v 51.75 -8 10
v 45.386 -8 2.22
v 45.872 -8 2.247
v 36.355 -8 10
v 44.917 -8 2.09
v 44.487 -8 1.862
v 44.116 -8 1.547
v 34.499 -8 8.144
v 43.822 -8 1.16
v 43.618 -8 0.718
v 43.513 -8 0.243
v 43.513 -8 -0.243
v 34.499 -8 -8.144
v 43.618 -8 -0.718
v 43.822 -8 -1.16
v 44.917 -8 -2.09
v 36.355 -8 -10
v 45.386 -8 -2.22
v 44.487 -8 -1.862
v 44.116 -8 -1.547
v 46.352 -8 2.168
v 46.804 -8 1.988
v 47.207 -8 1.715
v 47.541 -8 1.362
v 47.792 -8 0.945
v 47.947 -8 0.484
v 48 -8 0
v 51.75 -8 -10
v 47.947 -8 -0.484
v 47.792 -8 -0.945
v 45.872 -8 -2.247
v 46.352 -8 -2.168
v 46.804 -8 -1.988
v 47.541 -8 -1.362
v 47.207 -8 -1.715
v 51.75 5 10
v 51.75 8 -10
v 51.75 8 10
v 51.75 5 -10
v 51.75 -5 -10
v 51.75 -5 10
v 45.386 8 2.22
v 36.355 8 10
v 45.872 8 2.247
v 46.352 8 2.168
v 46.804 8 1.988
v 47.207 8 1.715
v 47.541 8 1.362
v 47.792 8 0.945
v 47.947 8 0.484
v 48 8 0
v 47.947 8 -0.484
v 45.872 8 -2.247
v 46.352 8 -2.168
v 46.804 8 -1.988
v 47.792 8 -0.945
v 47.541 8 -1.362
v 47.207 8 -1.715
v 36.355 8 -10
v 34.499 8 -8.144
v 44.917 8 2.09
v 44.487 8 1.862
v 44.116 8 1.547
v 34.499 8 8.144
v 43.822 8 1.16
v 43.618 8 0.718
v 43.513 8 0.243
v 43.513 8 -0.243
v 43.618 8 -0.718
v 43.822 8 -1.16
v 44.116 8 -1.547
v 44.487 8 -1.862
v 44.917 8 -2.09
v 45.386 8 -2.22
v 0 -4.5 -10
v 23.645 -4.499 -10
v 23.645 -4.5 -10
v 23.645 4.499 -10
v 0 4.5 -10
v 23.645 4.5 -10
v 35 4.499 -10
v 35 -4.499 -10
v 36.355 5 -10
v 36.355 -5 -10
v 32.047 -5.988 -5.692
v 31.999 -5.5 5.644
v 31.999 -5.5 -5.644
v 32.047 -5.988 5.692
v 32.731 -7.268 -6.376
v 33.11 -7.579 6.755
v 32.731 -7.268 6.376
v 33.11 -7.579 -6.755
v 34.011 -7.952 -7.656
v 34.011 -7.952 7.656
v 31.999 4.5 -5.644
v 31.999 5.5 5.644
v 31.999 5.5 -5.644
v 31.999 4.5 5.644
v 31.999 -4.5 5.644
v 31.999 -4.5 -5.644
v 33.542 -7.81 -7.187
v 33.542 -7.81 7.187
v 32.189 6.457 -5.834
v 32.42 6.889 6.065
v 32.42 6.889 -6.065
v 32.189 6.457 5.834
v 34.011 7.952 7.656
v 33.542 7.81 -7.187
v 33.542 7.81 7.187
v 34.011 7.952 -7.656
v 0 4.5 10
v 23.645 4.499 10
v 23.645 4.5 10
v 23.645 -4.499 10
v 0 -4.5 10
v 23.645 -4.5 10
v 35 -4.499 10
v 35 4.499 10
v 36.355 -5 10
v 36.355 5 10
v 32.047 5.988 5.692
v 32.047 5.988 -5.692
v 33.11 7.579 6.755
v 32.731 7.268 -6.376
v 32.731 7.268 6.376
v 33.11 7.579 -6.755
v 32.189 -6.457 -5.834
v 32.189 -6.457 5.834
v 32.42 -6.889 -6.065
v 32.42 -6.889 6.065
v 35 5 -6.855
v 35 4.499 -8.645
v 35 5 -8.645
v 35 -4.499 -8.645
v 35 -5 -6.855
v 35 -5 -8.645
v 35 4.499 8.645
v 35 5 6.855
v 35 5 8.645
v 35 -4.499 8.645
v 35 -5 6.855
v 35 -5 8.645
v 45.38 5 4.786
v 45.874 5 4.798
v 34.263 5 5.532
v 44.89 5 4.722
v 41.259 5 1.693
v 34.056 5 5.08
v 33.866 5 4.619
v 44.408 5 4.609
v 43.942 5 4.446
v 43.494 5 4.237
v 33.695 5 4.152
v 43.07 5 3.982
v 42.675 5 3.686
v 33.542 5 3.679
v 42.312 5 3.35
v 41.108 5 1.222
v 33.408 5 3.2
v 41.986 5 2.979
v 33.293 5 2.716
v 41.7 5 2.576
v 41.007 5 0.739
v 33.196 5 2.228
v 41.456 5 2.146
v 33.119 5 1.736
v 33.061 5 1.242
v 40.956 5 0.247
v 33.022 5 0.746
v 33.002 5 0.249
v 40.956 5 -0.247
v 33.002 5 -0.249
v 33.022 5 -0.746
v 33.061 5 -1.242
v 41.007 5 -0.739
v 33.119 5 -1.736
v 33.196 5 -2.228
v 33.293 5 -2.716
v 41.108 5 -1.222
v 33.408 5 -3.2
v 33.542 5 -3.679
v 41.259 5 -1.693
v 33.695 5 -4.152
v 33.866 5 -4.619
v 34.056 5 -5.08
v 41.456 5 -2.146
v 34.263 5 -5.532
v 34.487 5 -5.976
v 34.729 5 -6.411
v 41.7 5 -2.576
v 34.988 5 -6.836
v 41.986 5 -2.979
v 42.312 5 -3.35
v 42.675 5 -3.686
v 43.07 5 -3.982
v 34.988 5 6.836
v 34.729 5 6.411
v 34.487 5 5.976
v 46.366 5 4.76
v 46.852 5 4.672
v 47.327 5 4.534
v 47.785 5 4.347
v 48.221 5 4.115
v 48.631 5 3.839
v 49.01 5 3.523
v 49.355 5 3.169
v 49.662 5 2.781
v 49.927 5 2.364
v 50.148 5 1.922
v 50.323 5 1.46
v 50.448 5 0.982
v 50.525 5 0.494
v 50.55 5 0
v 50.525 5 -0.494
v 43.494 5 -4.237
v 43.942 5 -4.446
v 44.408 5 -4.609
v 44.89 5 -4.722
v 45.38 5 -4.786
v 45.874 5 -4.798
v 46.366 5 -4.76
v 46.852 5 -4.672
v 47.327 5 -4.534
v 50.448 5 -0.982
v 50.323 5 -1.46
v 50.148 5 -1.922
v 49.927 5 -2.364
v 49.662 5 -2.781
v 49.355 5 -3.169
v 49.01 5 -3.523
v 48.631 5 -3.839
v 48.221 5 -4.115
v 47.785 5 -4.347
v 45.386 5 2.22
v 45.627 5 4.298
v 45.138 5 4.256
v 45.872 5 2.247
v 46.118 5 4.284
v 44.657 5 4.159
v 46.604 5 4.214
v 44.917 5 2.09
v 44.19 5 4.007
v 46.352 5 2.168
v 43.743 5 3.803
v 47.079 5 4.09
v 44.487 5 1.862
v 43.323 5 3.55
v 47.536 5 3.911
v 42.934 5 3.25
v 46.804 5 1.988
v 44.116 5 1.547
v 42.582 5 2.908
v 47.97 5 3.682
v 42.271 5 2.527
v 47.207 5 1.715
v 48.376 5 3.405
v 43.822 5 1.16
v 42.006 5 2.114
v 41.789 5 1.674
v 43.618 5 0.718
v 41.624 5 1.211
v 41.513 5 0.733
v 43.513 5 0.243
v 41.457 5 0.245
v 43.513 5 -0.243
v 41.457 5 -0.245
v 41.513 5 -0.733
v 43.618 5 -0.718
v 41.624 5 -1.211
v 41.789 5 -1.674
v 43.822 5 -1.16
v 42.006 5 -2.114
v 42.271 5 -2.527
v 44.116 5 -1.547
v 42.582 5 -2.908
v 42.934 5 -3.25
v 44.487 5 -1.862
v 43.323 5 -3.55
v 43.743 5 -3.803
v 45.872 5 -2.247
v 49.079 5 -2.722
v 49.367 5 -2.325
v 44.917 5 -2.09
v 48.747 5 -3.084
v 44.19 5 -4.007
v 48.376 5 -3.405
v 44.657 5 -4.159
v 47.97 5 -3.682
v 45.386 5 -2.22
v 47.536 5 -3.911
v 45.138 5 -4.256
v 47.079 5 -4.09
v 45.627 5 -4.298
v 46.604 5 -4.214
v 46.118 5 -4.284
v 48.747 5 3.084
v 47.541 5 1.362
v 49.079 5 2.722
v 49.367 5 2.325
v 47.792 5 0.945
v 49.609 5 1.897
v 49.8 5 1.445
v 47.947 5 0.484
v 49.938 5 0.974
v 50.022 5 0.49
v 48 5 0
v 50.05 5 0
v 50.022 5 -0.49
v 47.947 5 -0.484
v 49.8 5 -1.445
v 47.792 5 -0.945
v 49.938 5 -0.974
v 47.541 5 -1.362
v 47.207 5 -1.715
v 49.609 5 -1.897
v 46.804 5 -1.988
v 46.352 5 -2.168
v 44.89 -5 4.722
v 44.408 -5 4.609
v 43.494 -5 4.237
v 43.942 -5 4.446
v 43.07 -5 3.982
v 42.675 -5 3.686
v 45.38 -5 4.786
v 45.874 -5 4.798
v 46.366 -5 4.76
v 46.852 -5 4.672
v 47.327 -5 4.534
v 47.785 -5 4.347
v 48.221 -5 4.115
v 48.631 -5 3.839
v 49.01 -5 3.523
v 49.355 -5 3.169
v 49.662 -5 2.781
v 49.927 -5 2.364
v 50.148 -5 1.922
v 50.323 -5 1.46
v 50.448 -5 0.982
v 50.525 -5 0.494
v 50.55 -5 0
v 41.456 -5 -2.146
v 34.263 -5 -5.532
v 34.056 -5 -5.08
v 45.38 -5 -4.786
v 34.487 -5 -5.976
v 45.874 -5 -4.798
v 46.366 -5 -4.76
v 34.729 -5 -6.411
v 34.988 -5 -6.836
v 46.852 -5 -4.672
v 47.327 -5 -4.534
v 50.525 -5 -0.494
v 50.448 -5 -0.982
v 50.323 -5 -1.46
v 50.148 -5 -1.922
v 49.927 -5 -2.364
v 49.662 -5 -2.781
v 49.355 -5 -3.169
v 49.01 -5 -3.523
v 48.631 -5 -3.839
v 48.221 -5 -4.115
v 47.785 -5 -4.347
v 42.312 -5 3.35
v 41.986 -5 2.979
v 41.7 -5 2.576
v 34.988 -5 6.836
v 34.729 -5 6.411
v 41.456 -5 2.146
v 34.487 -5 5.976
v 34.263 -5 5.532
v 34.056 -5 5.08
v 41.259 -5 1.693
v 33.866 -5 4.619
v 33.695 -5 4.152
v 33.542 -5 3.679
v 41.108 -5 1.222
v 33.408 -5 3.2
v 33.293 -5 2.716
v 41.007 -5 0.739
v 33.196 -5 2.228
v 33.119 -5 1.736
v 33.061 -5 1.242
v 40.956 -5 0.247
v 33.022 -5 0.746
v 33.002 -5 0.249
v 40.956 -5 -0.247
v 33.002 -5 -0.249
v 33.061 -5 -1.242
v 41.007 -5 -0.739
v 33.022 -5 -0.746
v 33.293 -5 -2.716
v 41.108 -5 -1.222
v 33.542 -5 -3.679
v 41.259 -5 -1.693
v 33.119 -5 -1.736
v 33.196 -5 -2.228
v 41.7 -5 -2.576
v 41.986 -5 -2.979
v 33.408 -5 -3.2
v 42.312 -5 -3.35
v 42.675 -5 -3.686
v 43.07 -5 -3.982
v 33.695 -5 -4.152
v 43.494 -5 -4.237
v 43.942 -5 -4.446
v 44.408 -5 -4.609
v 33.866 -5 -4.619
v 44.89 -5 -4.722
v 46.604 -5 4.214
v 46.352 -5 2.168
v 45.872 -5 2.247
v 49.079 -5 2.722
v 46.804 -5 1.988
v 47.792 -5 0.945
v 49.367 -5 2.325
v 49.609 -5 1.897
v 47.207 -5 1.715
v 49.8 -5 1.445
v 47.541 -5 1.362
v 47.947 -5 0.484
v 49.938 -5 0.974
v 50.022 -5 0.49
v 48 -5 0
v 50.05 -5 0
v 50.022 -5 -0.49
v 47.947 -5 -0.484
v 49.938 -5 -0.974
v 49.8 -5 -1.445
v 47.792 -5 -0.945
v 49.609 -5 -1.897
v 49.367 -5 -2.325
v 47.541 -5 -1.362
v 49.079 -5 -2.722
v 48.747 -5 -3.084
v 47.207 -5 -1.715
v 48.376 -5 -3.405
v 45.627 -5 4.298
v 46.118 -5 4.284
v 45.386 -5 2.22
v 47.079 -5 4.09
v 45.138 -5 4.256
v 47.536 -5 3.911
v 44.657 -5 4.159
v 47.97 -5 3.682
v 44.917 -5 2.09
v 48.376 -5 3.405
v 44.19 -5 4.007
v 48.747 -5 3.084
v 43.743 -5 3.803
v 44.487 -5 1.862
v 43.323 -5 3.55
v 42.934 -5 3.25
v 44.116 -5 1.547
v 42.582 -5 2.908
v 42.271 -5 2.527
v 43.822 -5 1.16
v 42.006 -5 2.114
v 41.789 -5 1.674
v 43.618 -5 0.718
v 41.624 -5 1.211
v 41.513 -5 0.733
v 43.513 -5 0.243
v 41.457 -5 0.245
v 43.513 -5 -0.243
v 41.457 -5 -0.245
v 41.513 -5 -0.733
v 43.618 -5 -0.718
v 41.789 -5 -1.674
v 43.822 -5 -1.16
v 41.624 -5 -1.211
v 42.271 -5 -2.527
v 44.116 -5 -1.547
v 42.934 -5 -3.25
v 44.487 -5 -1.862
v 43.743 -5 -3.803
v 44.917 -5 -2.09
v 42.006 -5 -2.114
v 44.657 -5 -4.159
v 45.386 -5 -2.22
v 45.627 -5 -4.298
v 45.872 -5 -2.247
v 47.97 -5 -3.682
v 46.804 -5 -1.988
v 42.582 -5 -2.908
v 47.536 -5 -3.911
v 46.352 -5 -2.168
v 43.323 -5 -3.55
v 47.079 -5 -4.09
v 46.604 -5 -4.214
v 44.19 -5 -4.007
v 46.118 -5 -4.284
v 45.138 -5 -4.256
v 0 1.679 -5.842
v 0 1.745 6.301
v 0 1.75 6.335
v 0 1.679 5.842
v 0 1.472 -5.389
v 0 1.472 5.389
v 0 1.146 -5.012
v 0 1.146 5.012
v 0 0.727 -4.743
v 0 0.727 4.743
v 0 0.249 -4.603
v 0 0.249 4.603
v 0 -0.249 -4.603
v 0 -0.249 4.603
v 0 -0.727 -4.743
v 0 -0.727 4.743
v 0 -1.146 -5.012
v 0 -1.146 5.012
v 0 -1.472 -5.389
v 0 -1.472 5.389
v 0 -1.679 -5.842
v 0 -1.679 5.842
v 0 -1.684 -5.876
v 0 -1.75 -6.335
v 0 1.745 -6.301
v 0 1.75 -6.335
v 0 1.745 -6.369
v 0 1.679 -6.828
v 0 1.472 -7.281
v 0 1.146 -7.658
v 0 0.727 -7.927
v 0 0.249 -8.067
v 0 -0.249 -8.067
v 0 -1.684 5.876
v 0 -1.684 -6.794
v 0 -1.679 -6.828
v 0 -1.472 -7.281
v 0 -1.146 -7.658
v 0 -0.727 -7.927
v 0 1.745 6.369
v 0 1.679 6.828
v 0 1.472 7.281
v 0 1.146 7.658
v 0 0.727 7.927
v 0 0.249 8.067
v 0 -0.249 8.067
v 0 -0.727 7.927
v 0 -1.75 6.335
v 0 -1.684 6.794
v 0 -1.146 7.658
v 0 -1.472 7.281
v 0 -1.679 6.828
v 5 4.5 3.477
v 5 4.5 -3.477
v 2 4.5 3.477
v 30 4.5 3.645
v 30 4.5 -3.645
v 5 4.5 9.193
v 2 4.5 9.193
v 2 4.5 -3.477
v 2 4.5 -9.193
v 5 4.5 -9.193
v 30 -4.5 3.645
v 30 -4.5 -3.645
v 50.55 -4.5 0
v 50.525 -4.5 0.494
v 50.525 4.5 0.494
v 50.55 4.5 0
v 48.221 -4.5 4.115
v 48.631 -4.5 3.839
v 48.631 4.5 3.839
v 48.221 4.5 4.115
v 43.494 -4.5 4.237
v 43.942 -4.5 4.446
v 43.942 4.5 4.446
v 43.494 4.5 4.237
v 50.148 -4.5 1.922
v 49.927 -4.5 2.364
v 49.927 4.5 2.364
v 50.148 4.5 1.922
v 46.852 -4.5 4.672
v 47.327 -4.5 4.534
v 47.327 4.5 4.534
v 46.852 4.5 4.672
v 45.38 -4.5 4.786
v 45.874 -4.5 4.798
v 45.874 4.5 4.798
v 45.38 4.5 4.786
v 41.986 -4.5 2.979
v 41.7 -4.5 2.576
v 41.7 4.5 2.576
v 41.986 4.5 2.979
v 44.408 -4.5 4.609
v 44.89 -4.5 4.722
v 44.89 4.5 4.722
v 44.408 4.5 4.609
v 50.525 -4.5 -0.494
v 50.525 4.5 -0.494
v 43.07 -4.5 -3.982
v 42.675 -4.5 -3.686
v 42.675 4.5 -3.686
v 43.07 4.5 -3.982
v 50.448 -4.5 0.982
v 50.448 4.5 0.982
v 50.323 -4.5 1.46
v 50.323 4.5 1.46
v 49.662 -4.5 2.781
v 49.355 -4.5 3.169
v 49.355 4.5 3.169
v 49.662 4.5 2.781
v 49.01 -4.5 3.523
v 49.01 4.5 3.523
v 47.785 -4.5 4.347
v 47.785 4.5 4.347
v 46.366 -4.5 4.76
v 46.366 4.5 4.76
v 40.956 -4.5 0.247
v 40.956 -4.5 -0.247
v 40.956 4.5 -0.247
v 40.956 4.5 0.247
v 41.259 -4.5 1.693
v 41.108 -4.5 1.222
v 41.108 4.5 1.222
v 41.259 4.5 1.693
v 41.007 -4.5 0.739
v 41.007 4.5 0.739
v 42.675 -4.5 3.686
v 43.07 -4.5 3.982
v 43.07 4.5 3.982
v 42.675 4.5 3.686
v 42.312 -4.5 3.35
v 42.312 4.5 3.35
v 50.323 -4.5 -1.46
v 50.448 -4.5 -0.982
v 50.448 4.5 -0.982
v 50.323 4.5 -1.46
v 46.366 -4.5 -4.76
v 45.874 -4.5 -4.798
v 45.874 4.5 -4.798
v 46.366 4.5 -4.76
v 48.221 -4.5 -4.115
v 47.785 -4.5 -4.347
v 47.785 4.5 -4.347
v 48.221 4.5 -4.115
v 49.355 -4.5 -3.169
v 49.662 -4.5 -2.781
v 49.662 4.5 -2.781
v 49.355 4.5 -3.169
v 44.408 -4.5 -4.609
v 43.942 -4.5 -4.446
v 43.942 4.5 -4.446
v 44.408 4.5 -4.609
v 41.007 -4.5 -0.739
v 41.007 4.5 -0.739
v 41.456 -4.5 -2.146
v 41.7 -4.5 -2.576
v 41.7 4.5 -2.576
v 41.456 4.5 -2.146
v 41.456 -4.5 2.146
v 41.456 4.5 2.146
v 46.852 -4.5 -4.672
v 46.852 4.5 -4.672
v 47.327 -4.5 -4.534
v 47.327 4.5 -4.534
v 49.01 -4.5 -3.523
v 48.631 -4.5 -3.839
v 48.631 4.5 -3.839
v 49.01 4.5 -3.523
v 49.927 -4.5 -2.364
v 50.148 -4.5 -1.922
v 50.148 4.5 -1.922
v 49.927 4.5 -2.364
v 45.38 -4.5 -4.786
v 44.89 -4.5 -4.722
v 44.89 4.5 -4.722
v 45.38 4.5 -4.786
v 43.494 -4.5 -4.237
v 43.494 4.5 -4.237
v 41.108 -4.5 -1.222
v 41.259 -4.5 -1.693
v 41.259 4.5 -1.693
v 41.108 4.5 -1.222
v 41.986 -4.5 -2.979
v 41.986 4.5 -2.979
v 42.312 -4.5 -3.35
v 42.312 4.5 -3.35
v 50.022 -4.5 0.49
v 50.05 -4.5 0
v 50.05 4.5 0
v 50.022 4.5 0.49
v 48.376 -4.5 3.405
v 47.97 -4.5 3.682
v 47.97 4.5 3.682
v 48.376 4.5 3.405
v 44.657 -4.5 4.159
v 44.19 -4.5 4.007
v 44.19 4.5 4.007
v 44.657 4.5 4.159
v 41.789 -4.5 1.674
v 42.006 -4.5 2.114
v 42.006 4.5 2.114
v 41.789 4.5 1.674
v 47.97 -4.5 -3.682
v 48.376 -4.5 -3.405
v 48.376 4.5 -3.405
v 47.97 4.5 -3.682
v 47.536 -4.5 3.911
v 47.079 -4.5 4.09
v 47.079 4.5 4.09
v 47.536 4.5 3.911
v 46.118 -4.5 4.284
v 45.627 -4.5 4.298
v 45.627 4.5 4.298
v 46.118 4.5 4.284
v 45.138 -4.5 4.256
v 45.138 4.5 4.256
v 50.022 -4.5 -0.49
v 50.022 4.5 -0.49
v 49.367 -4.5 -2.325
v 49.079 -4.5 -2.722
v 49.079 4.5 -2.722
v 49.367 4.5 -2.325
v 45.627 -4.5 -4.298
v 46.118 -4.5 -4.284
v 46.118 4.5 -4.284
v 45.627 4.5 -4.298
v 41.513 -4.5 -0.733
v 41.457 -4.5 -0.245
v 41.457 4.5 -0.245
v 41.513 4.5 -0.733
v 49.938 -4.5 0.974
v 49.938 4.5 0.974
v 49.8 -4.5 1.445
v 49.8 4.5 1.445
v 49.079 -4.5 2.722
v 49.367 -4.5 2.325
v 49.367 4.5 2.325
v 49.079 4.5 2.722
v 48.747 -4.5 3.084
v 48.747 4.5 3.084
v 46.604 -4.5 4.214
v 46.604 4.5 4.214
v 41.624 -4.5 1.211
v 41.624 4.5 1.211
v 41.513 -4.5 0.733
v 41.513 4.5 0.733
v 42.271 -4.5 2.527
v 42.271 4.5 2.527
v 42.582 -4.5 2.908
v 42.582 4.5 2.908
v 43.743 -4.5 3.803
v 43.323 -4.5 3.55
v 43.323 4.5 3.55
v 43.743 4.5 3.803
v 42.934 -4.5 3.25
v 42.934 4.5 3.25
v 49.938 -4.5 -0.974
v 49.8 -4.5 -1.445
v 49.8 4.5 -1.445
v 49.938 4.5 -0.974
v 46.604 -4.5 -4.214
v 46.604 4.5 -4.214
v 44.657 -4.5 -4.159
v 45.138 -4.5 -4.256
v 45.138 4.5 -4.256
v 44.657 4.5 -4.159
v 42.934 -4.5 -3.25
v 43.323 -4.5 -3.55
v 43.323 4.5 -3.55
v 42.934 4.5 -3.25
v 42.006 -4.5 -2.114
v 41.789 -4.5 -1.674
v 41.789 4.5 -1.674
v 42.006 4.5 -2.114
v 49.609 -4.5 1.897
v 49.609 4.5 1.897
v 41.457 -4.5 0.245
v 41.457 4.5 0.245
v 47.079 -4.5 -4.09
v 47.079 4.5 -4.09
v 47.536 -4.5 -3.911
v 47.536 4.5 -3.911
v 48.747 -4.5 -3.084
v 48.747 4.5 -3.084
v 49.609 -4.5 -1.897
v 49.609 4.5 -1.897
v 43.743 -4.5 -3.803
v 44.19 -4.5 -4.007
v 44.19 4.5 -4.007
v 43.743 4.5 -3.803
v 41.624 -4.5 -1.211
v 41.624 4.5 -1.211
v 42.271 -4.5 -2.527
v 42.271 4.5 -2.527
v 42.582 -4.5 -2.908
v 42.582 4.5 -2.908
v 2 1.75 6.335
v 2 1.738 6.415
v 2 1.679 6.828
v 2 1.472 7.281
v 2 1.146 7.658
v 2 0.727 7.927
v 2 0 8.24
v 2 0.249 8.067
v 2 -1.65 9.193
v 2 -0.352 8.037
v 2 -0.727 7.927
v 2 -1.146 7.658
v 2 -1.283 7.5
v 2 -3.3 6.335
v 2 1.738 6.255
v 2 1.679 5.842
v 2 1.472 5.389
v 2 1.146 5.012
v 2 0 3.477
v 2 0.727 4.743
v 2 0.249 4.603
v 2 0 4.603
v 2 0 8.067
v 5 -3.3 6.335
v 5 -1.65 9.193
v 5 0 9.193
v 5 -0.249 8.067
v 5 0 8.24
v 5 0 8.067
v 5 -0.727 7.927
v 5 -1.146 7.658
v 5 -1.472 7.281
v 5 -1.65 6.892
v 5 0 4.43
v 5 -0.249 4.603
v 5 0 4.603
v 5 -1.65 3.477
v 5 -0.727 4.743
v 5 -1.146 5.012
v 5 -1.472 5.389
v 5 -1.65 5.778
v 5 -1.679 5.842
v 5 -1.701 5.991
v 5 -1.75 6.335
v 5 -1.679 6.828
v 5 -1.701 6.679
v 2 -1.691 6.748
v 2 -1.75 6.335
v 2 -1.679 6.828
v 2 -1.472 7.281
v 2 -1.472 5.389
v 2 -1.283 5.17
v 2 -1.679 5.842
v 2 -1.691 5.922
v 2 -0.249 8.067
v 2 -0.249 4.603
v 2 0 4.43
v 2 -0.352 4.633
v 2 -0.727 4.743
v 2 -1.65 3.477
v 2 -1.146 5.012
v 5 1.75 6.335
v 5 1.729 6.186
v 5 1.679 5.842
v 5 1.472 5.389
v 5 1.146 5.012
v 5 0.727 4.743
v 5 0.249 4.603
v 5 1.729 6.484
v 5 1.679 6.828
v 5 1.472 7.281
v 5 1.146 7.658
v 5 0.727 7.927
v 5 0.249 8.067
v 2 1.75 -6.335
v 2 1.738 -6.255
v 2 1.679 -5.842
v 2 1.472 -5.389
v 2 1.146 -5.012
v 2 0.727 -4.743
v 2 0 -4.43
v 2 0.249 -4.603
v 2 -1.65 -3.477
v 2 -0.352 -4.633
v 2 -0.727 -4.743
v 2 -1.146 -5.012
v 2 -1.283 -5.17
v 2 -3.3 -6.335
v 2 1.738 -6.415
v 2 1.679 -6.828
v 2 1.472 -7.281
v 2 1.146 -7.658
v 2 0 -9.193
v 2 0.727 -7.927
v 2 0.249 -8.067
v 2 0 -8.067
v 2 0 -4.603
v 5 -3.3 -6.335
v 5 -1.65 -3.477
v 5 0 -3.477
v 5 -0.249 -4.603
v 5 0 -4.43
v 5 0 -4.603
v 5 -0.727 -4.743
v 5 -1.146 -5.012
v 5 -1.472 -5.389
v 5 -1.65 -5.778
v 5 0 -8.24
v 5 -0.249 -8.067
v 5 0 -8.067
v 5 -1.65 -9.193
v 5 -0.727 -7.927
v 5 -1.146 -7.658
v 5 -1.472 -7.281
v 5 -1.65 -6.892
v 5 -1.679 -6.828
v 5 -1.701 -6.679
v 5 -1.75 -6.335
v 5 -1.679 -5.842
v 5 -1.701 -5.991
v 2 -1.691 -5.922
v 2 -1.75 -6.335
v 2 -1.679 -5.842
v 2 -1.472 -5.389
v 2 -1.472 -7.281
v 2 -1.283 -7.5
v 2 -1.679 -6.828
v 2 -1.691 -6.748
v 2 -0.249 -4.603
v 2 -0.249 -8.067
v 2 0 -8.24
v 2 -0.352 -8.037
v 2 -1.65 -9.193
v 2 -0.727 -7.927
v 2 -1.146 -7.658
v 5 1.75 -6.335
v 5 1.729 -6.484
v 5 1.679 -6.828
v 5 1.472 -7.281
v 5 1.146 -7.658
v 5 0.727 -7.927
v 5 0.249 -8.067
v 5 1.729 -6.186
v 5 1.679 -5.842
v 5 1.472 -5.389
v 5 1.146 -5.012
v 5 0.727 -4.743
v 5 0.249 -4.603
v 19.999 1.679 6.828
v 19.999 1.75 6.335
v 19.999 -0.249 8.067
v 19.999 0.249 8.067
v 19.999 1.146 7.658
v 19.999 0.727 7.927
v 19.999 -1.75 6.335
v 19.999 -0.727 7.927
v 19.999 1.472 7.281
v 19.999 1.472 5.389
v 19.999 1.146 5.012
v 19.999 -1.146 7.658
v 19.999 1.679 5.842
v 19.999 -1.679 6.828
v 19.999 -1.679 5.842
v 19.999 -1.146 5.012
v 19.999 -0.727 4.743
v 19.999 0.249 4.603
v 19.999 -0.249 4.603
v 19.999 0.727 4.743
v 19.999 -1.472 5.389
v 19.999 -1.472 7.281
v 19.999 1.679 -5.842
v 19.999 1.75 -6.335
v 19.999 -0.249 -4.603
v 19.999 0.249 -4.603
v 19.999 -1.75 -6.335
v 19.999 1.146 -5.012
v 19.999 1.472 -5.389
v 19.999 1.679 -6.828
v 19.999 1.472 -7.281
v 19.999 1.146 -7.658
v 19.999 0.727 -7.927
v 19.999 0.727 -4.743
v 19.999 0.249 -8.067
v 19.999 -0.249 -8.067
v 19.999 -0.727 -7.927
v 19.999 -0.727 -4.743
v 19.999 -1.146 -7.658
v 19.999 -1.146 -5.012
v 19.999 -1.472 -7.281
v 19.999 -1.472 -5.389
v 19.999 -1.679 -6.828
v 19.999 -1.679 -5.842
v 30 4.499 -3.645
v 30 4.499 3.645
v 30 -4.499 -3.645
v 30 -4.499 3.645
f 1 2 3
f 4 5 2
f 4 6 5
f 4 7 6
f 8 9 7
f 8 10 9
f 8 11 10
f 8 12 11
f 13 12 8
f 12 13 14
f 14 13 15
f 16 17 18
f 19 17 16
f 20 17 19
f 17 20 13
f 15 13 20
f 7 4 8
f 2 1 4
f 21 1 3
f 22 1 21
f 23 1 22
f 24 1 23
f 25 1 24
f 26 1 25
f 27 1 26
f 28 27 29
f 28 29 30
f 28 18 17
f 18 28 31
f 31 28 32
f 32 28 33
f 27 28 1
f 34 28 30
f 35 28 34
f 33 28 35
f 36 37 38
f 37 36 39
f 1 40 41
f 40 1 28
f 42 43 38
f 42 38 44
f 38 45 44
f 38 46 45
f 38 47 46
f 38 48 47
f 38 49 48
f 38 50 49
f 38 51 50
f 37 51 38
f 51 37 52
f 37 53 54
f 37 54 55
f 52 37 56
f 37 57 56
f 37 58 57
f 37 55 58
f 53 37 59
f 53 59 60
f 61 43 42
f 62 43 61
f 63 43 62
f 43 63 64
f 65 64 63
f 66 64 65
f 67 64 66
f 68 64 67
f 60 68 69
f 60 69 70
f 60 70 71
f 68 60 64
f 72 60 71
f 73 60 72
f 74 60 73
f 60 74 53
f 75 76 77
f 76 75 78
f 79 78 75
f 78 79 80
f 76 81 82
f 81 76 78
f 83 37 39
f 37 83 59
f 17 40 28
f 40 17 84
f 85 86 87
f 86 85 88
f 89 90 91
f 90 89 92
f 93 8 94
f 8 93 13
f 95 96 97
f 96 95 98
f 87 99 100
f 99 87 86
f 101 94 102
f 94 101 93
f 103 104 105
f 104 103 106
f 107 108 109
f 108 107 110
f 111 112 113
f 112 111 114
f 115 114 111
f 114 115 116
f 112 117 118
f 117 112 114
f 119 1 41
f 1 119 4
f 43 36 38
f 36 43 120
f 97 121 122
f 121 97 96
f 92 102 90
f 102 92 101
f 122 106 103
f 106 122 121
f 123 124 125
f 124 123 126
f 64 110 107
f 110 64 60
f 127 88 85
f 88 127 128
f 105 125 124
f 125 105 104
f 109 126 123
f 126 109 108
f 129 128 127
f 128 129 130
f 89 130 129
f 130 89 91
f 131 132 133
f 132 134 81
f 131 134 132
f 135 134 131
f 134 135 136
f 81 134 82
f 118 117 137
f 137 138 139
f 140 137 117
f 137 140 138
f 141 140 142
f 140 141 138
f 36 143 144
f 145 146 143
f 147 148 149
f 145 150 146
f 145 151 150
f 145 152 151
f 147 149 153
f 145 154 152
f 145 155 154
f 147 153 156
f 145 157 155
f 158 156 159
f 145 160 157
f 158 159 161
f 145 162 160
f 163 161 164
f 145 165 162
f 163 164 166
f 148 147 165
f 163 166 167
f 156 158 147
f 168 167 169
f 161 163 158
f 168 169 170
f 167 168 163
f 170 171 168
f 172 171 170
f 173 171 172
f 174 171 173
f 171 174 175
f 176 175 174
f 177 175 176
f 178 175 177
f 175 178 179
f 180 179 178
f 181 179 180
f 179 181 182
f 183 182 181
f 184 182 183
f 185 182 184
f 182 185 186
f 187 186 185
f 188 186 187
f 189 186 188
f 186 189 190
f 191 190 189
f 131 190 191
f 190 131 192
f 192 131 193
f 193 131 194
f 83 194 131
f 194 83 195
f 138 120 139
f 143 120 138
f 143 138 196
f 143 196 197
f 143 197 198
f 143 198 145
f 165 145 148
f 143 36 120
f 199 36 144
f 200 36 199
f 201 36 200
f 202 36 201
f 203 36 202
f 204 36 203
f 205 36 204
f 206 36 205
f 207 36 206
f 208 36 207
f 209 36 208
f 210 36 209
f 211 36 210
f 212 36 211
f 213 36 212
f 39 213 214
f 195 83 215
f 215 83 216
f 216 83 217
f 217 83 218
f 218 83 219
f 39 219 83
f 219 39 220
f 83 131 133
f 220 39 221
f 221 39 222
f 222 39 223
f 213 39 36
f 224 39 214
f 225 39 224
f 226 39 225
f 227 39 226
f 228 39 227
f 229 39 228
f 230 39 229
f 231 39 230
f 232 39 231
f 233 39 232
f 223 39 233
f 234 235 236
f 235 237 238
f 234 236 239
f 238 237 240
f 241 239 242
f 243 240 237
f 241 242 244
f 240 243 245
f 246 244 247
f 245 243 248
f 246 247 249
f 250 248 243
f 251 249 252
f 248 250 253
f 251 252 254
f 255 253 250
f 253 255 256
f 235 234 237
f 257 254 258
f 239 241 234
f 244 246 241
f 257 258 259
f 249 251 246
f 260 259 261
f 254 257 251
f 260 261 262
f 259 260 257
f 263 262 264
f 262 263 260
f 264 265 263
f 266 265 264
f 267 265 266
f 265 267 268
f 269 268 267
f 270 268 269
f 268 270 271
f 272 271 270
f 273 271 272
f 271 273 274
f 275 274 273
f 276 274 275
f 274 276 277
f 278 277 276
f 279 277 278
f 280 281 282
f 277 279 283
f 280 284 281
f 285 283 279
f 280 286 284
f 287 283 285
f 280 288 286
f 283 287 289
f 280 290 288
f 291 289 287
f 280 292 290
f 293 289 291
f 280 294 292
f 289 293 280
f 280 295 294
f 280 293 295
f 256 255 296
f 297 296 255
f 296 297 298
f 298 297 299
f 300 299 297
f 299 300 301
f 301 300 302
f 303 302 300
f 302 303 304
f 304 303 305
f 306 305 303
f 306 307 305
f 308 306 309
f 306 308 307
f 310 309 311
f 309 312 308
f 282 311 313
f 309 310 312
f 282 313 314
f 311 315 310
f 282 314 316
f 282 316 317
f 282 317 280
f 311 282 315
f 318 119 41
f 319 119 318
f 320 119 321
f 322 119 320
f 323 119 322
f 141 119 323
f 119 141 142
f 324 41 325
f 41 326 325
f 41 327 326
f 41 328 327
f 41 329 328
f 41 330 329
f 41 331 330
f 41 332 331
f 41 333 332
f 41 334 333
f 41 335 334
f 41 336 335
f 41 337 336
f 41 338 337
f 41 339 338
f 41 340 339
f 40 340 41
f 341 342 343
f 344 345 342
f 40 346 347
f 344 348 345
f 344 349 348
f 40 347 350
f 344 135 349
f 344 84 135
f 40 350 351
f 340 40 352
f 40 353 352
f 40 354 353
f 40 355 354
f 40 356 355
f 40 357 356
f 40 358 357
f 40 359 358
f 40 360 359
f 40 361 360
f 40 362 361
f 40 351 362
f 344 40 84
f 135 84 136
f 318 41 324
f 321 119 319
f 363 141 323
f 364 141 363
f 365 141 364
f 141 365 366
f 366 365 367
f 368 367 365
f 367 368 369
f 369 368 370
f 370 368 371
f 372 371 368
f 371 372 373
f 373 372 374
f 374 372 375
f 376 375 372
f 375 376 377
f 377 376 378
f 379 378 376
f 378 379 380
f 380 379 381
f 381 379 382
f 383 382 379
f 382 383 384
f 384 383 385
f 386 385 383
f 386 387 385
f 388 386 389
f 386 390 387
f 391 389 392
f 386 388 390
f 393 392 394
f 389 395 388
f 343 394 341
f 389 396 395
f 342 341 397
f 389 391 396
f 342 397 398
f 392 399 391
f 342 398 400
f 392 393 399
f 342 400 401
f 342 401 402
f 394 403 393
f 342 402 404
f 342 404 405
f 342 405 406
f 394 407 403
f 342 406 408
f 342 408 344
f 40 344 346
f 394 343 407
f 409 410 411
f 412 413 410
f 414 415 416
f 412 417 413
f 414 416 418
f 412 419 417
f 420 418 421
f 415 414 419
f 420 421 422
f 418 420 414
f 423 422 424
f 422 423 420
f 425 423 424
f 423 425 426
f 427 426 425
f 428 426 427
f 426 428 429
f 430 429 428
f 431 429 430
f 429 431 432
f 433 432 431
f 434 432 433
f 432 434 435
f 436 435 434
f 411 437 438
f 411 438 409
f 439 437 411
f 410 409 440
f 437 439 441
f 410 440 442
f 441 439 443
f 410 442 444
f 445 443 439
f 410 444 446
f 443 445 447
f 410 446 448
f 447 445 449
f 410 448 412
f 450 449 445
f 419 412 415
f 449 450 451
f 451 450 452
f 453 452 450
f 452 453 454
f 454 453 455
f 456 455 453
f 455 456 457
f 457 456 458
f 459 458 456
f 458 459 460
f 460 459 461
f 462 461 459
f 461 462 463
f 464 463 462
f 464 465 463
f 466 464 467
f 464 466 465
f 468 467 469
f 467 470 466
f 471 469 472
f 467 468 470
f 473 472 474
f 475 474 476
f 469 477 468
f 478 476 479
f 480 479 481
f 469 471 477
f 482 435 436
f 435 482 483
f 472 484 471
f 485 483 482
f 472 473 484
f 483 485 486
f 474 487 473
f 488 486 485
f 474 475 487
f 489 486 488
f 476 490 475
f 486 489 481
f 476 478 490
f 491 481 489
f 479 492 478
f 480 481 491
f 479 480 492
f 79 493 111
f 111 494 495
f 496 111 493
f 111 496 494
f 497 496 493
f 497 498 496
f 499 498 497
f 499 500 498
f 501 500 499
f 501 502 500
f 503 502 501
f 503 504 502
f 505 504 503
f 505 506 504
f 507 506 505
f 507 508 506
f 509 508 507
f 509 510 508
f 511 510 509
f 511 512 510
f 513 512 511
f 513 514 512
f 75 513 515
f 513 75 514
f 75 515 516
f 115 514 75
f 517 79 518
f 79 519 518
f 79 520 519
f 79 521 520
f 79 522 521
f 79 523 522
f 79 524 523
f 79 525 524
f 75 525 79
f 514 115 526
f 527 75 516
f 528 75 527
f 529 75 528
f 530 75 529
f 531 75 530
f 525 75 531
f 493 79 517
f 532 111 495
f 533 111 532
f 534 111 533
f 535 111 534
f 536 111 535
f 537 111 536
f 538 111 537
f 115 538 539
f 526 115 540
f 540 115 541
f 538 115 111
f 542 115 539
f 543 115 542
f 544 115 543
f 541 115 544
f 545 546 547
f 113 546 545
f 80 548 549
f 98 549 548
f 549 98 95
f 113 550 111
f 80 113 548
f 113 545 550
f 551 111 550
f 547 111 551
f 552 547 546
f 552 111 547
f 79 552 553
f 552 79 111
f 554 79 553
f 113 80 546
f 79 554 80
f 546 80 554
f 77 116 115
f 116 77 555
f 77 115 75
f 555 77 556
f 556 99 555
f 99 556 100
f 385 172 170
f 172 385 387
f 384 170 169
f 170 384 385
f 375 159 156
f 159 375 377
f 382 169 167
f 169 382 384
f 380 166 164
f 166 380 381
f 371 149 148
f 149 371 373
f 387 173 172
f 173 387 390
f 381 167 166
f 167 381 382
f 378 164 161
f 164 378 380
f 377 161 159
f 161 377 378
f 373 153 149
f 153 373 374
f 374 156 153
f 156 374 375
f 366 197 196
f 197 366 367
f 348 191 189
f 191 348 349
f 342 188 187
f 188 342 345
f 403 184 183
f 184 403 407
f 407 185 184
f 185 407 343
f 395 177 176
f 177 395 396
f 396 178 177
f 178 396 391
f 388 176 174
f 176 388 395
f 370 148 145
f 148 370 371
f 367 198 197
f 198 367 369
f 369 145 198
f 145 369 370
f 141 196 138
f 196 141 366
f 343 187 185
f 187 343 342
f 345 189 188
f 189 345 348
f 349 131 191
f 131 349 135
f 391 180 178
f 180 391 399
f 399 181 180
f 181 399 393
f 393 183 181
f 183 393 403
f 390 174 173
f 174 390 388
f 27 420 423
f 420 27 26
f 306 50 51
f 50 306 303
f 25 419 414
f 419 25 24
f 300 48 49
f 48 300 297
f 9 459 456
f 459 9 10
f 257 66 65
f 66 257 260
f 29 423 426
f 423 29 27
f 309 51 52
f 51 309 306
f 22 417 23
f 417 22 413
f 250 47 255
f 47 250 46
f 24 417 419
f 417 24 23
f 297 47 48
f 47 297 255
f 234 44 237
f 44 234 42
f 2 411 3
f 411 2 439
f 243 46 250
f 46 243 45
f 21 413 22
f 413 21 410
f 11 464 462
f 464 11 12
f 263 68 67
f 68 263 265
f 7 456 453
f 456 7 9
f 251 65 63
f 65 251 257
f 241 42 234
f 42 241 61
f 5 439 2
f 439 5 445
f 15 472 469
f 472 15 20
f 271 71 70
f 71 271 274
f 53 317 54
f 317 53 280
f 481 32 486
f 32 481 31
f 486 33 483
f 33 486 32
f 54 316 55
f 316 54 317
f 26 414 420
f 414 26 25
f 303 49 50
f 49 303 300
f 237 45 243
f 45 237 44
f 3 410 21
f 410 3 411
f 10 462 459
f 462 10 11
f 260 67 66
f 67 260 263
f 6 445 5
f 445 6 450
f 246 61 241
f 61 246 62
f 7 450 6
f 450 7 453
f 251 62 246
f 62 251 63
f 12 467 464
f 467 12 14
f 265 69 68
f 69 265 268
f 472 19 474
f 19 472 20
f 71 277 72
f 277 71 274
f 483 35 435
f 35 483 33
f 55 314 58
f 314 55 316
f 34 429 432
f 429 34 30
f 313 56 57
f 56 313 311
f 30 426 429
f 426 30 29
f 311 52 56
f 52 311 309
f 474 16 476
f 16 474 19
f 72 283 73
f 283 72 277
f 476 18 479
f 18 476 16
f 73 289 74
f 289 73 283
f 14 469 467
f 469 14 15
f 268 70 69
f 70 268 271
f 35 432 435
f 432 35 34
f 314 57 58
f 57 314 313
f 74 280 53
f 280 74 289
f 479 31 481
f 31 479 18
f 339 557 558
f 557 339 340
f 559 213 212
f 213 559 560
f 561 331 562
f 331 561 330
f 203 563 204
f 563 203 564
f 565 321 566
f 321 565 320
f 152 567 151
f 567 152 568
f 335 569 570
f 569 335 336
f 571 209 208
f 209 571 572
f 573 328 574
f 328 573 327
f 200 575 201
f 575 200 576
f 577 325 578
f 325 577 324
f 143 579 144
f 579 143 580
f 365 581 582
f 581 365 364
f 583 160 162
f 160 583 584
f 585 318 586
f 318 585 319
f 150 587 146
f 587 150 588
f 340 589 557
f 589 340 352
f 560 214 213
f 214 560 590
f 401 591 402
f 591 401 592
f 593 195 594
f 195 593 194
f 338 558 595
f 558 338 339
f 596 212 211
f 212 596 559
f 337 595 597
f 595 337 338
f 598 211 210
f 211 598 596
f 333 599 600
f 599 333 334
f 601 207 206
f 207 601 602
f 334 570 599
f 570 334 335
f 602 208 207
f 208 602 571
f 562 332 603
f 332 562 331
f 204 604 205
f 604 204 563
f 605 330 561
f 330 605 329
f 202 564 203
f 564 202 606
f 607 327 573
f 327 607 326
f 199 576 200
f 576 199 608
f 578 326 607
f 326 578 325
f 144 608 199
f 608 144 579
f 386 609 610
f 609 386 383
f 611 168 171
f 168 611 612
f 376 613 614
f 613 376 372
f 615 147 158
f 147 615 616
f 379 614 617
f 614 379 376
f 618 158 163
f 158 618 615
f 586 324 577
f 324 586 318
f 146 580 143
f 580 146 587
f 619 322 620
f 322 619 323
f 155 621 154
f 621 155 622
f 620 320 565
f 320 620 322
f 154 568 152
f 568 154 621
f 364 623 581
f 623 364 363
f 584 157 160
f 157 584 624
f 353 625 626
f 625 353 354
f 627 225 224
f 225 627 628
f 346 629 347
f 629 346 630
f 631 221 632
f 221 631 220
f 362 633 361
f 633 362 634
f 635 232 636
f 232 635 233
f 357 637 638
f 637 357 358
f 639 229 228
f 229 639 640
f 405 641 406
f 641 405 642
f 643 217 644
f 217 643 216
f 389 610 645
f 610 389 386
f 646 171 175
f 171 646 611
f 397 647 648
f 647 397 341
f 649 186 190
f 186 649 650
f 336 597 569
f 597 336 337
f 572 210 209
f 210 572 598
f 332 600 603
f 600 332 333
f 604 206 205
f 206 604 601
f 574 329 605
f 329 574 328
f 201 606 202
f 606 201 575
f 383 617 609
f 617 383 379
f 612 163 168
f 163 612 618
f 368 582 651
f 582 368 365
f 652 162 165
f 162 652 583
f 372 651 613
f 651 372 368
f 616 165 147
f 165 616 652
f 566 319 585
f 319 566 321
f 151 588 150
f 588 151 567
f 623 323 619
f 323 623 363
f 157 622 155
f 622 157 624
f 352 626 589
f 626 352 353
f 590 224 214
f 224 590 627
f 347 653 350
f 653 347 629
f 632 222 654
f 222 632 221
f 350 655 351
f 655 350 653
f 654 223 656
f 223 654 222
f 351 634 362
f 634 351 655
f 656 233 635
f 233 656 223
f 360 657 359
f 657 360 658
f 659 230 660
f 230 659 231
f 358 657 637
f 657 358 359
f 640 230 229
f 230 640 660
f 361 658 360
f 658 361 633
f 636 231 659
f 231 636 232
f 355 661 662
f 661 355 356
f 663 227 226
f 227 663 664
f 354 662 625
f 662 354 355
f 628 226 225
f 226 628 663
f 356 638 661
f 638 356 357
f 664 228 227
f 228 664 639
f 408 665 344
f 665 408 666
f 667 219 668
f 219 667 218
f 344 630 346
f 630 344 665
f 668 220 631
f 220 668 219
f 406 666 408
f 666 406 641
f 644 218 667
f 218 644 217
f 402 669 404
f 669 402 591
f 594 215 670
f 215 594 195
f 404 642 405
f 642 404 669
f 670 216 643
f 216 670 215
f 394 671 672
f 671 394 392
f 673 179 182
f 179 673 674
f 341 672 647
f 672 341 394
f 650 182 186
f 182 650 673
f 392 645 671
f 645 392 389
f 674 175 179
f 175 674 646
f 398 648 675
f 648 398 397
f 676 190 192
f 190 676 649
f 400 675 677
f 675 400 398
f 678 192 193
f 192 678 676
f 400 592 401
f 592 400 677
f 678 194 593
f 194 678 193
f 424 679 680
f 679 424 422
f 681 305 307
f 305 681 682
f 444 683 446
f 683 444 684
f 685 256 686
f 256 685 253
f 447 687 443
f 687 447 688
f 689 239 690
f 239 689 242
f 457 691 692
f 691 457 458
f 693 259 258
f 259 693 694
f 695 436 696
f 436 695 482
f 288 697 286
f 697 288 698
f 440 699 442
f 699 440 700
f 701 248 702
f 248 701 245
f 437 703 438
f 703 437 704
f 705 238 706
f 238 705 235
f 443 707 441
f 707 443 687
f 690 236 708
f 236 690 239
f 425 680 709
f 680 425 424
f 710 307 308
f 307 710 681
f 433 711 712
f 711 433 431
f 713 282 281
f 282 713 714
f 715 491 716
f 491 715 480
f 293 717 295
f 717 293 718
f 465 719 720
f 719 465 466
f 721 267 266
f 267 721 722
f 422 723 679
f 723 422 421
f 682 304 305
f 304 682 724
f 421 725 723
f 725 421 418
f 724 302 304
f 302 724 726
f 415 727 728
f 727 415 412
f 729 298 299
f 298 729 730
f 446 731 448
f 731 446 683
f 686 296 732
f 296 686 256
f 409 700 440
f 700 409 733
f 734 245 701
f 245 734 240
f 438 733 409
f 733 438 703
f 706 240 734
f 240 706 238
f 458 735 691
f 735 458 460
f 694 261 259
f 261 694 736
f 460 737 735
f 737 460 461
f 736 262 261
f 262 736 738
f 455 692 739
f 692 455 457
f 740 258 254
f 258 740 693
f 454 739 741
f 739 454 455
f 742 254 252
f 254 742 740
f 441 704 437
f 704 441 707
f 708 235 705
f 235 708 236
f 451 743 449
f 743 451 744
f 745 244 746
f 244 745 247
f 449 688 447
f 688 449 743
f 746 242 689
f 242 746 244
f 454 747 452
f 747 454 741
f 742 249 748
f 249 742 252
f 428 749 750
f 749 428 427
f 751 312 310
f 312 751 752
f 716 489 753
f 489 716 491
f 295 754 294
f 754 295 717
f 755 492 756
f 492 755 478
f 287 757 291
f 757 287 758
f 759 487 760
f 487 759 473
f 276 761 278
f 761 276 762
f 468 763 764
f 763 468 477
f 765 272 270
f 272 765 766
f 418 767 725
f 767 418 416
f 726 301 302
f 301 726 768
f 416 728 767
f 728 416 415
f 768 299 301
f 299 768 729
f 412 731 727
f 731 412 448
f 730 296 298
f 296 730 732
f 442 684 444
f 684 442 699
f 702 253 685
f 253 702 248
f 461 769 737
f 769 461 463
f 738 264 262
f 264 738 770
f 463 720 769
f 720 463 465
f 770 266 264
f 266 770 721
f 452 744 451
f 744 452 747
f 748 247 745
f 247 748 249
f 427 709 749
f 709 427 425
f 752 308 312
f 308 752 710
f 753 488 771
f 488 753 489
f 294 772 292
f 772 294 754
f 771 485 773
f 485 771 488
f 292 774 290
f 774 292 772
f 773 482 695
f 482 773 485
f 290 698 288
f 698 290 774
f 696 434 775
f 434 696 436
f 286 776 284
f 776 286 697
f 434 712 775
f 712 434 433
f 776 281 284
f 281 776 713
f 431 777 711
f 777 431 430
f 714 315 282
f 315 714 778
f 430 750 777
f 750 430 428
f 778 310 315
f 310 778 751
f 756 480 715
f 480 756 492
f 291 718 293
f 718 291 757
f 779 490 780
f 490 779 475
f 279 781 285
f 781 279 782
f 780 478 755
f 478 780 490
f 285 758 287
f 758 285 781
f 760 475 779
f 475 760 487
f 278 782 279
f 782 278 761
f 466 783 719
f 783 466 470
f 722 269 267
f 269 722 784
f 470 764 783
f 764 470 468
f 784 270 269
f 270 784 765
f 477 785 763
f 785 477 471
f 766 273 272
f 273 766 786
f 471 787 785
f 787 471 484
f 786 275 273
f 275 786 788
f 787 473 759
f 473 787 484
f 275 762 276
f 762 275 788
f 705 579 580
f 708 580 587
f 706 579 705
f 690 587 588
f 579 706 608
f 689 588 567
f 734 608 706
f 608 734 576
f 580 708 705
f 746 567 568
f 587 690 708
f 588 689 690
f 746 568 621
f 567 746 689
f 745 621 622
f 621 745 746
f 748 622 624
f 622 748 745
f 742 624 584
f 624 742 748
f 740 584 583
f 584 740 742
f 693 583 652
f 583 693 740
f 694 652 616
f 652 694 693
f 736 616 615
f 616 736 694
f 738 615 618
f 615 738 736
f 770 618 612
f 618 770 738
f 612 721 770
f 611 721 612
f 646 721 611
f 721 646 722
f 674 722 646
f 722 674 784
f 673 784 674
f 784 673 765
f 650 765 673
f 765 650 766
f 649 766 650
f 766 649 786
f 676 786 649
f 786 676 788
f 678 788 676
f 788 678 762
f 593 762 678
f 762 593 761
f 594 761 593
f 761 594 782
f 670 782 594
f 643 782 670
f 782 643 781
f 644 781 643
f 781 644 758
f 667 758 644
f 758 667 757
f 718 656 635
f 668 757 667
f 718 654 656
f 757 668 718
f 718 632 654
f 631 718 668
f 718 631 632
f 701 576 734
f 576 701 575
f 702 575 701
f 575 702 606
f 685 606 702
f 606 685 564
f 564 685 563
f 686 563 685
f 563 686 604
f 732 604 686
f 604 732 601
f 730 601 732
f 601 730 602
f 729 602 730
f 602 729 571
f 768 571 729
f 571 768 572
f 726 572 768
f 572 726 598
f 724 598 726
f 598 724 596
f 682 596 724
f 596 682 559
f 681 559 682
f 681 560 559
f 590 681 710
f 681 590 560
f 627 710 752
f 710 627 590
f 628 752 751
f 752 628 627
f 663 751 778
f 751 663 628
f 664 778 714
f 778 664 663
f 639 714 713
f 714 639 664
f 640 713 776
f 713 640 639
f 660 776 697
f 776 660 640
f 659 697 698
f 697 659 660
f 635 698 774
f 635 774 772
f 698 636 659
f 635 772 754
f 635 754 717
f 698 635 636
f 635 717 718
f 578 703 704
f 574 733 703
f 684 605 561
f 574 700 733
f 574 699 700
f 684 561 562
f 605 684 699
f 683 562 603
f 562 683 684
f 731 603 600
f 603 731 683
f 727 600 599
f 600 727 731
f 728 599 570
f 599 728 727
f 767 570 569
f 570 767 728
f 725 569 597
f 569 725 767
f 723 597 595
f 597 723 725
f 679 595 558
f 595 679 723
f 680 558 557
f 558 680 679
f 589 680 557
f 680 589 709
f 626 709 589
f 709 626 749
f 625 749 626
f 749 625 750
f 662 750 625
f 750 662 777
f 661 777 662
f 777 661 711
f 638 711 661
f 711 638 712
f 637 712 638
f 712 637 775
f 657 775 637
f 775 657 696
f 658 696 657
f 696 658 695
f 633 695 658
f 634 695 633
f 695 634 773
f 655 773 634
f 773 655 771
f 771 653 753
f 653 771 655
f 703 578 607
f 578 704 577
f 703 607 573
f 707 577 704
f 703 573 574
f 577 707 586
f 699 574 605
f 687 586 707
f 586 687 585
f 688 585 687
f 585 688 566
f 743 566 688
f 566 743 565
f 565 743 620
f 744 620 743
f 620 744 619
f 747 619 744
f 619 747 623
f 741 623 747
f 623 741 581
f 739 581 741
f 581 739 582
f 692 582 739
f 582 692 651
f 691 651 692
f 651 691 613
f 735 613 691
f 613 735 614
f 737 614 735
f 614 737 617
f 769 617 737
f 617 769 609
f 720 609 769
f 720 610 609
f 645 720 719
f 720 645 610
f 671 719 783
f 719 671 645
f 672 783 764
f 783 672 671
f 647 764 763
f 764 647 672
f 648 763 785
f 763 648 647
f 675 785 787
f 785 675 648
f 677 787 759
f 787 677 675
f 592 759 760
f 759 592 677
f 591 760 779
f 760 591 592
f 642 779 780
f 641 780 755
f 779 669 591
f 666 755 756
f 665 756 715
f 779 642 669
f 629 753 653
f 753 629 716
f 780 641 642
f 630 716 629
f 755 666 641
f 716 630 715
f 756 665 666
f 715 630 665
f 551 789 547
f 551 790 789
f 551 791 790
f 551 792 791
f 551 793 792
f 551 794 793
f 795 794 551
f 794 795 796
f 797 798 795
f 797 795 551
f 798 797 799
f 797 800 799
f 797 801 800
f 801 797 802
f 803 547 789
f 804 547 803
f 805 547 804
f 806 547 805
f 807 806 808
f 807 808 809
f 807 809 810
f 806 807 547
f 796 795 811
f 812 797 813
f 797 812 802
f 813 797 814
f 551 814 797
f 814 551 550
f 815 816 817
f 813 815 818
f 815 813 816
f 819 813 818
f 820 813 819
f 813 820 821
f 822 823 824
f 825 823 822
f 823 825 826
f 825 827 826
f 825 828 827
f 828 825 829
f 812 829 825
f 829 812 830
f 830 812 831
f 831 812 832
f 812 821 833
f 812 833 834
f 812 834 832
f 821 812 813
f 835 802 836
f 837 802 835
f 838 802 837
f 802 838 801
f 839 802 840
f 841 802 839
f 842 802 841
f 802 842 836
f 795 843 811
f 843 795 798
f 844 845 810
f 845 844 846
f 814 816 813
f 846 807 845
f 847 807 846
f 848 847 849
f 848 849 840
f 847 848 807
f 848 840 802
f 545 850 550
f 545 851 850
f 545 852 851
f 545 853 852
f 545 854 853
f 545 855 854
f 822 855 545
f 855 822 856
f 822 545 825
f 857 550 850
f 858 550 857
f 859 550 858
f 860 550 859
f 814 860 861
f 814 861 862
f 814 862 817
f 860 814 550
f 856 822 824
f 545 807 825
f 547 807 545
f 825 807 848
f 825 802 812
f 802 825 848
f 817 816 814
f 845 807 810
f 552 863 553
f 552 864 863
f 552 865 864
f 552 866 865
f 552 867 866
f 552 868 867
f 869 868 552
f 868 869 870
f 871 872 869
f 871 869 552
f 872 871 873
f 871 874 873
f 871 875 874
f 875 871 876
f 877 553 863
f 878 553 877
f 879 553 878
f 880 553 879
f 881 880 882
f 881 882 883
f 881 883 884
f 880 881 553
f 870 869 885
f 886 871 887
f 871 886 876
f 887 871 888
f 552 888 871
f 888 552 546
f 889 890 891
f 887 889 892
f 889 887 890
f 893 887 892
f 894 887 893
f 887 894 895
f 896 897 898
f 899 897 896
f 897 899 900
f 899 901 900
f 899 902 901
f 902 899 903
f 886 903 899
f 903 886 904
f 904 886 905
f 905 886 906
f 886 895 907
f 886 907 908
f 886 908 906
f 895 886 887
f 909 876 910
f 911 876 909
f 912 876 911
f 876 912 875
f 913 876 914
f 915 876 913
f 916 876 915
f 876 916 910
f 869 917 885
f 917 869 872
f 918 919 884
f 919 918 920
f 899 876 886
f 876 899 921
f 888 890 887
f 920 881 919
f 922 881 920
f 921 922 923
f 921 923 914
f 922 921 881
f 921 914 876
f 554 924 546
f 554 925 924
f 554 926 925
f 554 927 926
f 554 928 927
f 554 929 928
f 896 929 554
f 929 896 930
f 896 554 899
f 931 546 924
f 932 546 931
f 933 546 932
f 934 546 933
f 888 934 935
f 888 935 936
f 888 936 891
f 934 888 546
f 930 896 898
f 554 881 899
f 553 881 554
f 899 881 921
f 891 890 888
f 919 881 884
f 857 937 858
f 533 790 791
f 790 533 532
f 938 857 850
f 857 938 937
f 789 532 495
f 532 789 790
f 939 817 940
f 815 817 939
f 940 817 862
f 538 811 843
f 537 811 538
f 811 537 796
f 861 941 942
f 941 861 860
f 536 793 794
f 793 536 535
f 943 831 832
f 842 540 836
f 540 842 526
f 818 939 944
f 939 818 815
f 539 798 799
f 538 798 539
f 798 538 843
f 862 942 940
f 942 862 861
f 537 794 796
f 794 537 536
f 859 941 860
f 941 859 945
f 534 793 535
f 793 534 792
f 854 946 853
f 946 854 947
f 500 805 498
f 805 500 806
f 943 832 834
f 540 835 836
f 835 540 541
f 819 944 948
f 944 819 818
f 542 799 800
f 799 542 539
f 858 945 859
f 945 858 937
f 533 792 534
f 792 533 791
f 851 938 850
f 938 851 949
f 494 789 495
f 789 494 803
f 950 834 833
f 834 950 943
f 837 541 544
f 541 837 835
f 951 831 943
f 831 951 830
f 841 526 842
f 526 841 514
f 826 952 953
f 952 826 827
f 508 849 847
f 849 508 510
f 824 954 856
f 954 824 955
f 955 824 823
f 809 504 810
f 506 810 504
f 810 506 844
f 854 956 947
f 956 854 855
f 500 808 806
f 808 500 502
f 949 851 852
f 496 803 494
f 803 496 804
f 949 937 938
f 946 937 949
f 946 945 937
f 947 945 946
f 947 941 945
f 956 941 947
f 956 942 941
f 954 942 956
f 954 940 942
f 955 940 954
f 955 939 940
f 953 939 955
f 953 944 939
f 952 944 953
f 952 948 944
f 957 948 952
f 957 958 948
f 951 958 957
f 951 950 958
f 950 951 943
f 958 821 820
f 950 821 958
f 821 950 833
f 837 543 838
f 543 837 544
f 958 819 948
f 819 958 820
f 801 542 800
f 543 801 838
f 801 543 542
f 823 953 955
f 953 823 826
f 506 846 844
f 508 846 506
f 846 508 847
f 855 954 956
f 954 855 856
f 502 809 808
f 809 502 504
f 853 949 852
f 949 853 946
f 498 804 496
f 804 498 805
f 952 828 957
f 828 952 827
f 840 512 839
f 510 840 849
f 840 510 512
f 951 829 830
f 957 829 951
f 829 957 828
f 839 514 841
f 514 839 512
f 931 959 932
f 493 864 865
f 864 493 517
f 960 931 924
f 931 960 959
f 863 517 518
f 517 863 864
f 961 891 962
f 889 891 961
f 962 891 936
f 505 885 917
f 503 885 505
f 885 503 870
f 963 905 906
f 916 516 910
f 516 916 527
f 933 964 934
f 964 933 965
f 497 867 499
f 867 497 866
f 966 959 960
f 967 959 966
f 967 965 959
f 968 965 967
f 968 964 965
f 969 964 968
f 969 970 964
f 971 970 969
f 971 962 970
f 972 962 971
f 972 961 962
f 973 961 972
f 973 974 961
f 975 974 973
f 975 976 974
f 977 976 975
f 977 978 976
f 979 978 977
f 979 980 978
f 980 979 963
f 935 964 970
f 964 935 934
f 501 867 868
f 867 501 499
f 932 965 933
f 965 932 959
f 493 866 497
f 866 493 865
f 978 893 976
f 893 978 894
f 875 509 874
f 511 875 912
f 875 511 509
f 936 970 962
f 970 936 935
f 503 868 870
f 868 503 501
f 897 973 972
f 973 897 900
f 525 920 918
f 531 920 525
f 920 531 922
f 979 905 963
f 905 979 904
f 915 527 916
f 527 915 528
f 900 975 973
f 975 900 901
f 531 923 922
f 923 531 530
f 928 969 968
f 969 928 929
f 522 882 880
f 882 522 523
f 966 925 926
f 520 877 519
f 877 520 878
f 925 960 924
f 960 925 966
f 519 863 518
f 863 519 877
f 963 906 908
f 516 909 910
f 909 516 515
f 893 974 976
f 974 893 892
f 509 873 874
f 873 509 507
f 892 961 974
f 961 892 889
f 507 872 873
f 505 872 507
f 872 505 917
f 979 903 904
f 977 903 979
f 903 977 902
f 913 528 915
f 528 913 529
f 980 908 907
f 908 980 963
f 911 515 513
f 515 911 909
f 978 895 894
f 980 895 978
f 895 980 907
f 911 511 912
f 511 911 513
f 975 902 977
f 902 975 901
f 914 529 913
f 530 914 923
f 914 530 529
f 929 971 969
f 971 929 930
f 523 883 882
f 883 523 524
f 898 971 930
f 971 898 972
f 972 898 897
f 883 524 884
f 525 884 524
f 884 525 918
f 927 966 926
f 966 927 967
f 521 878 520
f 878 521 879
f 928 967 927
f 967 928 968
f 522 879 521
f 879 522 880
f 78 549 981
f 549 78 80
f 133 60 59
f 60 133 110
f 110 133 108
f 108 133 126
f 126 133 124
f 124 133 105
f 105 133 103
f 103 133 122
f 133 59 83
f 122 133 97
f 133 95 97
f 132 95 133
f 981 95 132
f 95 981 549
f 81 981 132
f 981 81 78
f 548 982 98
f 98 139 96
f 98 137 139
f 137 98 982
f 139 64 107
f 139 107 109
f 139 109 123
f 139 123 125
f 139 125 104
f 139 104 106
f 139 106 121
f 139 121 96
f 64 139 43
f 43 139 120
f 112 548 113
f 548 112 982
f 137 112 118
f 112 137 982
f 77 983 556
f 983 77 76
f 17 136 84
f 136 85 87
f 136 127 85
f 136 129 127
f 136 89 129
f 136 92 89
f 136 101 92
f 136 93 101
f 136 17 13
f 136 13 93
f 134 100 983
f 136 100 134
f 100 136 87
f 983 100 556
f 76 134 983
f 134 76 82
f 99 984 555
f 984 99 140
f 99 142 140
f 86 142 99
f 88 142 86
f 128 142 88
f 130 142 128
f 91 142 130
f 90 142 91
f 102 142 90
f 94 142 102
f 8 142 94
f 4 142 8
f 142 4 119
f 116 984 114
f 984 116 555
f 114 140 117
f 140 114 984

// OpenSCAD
$fs=.5;
$fa=1;
ep=0.001;
shaft_l=32;
//shaft_h=12; //original rice design size
shaft_h=20;
shaft_w=9;
yoke_w=16;
yoke_r=2.5;
yoke_l=19.75;
inside_w=10;
m4slot=4.5;
m3slot=3.5;
m3screw_l=18.5;
belt_r=12.75;
belt_x=13.75;
f_ring_r=4.8;
m3nut_r=6.6/2;
m3nut_t=3;
//shaft
module shaft()
{
    translate([shaft_l/2,0,0])cube([shaft_l,shaft_w,shaft_h],center=true);
}
//yoke
module round()
{
    translate([0,0,-shaft_h/2])linear_extrude(height=shaft_h)intersection()
    {
        minkowski()
        {
            translate([shaft_l+(yoke_l-yoke_r)-ep,0])square([2*(yoke_l-yoke_r*2),(yoke_w-yoke_r*2)],center=true);
            circle(r=yoke_r);
        }
        translate([shaft_l+yoke_l/2-ep,0])square([yoke_l+ep,yoke_w+ep],center=true);
    }
}
module yoke()
{
    difference()
    {
        round();
        xbump=(yoke_w-inside_w)/2;
        translate([yoke_l/2+shaft_l+xbump,0,0])cube([yoke_l,inside_w,shaft_h*2],center=true);
    }
}
//yoke();
//shaft();
module shaftyoke()
{
    difference()
    {
        union()
        {
            yoke();
            shaft();
        }
        translate([shaft_l+belt_x,0,0])rotate(90,[1,0,0])cylinder(r=belt_r,h=inside_w,center=true);
        translate([shaft_l+belt_x,0,0])rotate(90,[1,0,0])cylinder(r=m4slot/2,h=inside_w*2,center=true);
    }
    //friction rings
    difference()
    {
        translate([shaft_l+belt_x,0,0])rotate(90,[1,0,0])cylinder(r=f_ring_r,h=inside_w+1,center=true);
        translate([shaft_l+belt_x,0,0])rotate(90,[1,0,0])cylinder(r=f_ring_r-.5,h=inside_w*2,center=true);
        translate([yoke_l/2+shaft_l,0,0])cube([yoke_l,inside_w-1,shaft_h*2],center=true);
    }
}
module complete()
{
    difference()
    {
        shaftyoke();
        //captive nuts
        slot_d=(5/2)*sqrt(3); 
        //fudge=slot_d-(5*sqrt(3)/2); //take this out later
        //+fudge
        translate([3.5,0,shaft_h/2-1.5-slot_d/2])
        {
            rotate([90,0,90])cylinder(r=m3nut_r,h=m3nut_t,$fn=6,center=true);
            translate([0,shaft_w/2,0])cube([m3nut_t,shaft_w,sqrt(3)*6.6/2],center=true);
            
        }
        translate([m3screw_l/2-ep,0,shaft_h/2-1.5-slot_d/2])rotate([90,0,90])cylinder(r=m3slot/2,h=m3screw_l+3,center=true);
        translate([3.5,0,-(shaft_h/2-1.5-slot_d/2)])
        {
            rotate([90,0,90])cylinder(r=m3nut_r,h=m3nut_t,$fn=6,center=true);
            translate([0,shaft_w/2,0])cube([m3nut_t,shaft_w,sqrt(3)*6.6/2],center=true);
        }
        translate([m3screw_l/2-ep,0,-(shaft_h/2-1.5-slot_d/2)])rotate([90,0,90])cylinder(r=m3slot/2,h=m3screw_l+3,center=true);
        translate([30,5+shaft_w/2-ep,-39])rotate(45,[0,1,0])cube([50,10,50],center=true);
        translate([30,5+shaft_w/2-ep,39])rotate(45,[0,1,0])cube([50,10,50],center=true);
        translate([30,-(5+shaft_w/2-ep),-39])rotate(45,[0,1,0])cube([50,10,50],center=true);
        translate([30,-(5+shaft_w/2-ep),39])rotate(45,[0,1,0])cube([50,10,50],center=true);
    }
    
}
complete();
    
